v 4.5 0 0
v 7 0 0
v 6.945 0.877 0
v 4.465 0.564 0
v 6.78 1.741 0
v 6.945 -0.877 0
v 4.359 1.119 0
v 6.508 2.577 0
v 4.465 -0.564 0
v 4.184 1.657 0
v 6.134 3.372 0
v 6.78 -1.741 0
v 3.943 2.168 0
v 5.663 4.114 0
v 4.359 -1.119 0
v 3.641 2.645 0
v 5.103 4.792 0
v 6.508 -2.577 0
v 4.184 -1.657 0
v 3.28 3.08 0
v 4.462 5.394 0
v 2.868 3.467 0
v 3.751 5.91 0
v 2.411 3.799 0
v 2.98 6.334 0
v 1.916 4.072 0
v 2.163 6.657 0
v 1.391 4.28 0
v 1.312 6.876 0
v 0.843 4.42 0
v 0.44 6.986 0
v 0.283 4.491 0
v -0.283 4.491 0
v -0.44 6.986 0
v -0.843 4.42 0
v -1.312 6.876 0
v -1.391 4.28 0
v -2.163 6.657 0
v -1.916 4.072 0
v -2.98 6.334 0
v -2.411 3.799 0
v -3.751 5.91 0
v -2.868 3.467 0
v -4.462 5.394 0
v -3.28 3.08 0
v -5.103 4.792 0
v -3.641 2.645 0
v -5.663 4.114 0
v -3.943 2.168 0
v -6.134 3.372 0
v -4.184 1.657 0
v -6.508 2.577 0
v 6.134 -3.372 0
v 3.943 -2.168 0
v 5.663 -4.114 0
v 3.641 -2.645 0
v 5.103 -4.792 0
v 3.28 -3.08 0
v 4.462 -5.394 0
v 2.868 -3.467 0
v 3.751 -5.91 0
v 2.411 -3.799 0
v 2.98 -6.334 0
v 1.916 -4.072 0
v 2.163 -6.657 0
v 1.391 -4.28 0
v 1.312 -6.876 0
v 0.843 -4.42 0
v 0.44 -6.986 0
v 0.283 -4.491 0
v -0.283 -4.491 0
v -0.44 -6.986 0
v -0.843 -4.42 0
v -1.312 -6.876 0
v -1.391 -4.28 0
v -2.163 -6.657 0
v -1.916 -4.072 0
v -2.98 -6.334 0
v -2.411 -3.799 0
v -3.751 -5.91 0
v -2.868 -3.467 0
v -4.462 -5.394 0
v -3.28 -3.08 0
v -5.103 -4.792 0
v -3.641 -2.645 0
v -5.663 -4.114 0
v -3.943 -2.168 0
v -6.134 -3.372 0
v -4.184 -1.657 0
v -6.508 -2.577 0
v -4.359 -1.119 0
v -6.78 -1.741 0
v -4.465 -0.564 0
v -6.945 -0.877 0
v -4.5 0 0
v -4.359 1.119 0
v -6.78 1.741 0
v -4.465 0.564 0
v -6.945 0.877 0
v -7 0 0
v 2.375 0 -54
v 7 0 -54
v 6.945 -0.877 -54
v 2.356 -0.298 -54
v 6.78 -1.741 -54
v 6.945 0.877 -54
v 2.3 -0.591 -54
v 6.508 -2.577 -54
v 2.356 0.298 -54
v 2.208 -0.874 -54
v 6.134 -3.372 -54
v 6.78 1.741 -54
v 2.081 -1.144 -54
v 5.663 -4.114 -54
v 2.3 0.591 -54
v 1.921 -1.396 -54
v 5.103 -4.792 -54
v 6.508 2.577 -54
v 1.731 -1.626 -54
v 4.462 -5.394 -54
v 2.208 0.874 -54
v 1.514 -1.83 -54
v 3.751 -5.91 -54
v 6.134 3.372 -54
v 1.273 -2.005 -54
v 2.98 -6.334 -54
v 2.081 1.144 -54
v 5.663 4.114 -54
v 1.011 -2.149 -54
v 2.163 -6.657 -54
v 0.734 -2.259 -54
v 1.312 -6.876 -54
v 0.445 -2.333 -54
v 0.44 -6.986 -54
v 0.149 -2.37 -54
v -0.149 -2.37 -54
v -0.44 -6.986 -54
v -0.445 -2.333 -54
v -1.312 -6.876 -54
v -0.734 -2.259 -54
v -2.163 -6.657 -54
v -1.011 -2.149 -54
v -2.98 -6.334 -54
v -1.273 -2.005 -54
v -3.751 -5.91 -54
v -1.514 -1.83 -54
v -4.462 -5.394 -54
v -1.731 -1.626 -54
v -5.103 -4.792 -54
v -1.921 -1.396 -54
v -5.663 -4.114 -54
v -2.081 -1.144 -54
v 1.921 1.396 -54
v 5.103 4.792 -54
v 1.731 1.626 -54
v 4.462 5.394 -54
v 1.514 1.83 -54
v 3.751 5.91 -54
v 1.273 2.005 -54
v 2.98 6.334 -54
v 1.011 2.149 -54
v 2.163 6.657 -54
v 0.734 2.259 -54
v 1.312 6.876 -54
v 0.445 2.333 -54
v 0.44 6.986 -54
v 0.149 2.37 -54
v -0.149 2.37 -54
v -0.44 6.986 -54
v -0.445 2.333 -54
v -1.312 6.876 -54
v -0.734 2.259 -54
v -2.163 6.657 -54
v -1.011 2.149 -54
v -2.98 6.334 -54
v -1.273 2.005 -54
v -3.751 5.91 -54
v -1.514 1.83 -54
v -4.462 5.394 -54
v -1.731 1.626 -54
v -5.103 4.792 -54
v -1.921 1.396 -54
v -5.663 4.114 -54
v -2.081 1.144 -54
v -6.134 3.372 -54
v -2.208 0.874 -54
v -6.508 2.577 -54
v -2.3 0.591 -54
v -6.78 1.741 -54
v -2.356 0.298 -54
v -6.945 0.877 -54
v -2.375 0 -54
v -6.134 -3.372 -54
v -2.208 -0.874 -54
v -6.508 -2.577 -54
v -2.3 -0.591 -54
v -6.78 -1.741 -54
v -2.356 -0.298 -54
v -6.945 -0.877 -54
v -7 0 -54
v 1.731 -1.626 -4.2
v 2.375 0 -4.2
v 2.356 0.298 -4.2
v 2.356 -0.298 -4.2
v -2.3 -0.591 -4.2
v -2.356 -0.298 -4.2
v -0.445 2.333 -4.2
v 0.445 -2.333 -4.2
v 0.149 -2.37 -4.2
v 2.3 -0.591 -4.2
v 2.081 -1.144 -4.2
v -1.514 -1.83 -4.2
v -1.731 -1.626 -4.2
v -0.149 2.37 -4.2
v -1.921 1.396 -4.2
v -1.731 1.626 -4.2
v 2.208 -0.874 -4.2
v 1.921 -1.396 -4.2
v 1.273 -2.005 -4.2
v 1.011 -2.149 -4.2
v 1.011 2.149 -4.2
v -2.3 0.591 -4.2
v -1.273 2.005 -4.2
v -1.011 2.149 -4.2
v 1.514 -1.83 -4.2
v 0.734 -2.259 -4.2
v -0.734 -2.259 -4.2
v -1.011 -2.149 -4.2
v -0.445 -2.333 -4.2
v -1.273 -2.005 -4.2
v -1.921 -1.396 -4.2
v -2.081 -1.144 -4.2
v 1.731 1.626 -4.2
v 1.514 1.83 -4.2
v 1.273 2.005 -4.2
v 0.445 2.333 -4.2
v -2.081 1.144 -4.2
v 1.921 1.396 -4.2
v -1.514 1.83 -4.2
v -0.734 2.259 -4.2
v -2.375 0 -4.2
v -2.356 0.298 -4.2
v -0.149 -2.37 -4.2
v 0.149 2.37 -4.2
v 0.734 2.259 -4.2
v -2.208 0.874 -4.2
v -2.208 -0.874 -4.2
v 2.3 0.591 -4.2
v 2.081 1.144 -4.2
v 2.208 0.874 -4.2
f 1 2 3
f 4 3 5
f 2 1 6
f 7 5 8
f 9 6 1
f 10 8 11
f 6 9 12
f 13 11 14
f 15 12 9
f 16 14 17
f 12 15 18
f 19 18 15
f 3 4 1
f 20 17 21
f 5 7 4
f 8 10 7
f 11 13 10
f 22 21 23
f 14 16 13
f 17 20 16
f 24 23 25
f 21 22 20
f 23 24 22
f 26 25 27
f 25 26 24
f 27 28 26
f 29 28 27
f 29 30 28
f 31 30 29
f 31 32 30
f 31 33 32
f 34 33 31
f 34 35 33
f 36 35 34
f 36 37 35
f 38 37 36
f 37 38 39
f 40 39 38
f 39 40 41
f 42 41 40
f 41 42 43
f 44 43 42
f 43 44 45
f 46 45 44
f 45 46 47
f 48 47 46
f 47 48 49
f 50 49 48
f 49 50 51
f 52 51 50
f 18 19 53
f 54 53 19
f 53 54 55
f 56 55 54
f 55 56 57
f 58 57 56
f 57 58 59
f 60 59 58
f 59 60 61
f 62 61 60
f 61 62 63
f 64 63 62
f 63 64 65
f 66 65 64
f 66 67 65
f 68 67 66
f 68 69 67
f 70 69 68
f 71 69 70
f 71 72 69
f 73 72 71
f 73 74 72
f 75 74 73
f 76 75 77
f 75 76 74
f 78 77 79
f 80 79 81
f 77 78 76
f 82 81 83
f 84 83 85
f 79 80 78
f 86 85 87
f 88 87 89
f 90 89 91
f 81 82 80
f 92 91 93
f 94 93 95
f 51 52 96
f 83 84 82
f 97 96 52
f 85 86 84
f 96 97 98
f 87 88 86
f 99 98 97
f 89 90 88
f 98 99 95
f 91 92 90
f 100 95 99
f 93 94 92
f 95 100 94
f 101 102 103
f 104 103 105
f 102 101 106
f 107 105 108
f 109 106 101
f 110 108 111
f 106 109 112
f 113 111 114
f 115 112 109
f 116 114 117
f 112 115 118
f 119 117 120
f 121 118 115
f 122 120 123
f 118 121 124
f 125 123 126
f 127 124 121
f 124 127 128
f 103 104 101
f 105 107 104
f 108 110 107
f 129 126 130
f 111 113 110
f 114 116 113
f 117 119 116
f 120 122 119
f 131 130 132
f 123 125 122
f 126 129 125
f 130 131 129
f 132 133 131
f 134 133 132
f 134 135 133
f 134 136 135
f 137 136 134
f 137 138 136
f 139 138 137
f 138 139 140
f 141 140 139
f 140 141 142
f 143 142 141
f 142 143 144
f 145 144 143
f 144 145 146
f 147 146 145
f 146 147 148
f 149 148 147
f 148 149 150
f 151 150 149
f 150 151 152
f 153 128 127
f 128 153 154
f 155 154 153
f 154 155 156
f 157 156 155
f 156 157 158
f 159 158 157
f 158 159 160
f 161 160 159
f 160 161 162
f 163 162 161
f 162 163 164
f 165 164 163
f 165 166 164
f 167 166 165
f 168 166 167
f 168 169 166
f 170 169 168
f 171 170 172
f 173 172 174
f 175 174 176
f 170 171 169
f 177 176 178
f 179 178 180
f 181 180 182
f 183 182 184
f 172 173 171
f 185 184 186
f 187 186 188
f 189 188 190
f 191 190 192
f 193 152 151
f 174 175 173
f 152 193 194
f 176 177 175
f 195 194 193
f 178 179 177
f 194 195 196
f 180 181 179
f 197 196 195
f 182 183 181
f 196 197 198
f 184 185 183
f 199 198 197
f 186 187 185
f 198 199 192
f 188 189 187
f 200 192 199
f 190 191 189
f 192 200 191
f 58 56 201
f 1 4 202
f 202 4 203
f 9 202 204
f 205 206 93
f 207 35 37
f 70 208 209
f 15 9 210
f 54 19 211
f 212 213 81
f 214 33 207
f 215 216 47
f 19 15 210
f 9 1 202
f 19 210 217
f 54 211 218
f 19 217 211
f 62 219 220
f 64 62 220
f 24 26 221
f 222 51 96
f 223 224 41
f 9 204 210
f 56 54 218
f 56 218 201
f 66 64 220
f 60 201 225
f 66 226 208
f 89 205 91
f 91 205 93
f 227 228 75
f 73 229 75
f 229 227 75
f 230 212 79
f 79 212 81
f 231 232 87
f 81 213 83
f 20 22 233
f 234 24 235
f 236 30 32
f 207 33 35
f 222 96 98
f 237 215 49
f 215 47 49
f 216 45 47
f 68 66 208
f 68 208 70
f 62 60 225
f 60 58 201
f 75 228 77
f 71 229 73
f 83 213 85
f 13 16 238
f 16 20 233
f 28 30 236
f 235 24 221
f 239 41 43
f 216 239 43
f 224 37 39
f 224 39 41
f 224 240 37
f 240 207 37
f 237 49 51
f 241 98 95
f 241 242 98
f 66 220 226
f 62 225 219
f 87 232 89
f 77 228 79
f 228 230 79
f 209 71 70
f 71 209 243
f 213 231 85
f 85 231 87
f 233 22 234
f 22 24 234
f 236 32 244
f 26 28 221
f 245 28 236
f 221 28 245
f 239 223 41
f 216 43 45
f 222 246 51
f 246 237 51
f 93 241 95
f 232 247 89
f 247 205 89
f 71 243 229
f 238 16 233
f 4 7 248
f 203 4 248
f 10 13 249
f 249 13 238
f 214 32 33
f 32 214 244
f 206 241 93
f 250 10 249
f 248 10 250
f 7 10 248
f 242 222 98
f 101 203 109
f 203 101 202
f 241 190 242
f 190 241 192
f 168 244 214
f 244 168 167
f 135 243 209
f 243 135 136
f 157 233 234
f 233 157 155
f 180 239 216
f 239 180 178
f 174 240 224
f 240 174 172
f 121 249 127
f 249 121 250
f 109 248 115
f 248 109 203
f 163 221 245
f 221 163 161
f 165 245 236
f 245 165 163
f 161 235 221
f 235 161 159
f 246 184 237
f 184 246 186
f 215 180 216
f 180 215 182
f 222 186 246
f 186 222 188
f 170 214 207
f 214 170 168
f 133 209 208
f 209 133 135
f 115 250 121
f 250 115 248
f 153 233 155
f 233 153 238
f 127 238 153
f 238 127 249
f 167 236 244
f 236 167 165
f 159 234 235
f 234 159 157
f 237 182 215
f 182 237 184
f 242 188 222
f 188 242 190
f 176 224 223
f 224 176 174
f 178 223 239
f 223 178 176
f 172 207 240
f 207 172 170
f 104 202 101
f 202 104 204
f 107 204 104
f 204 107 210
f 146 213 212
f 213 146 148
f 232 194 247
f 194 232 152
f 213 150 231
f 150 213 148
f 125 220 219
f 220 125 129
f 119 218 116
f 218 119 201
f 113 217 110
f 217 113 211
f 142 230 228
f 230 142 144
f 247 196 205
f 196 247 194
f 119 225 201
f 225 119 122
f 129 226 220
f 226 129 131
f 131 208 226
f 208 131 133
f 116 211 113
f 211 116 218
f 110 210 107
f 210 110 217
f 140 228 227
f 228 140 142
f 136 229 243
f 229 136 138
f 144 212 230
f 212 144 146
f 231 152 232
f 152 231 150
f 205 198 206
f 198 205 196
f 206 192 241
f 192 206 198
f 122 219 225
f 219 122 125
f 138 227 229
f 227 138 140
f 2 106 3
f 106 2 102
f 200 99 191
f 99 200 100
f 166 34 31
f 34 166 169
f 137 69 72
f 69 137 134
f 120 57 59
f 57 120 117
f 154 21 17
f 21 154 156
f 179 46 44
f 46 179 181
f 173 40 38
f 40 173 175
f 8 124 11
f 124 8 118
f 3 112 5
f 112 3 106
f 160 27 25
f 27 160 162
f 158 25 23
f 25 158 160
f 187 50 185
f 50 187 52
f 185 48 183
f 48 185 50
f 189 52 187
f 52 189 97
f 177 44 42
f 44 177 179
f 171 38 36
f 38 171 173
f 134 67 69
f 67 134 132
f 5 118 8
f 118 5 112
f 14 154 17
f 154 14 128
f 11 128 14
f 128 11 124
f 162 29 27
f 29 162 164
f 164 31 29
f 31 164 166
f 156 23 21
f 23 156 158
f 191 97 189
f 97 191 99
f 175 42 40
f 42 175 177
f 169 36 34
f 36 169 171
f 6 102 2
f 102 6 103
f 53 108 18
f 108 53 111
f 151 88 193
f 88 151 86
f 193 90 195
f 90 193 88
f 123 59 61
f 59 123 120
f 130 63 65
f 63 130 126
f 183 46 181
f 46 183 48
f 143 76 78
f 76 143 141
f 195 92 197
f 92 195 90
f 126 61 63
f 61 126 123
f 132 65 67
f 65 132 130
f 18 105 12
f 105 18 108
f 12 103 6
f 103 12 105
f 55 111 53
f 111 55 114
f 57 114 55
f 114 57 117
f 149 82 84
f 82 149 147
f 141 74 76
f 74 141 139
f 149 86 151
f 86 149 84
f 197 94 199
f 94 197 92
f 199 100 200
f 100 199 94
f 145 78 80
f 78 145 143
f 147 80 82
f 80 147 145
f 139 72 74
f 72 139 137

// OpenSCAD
$fn = 50;


difference() {
	union() {
		translate(v = [0, 0, -54.0000000000]) {
			cylinder(h = 54, r = 7.0000000000);
		}
		cylinder(h = 0, r = 13.0000000000);
	}
	union() {
		translate(v = [0, 0, 0]) {
			rotate(a = [0, 0, 0]) {
				difference() {
					union() {
						#translate(v = [0, 0, -54.0000000000]) {
							cylinder(h = 54, r = 2.2500000000);
						}
						#translate(v = [0, 0, -4.2000000000]) {
							cylinder(h = 4.2000000000, r1 = 2.3750000000, r2 = 4.5000000000);
						}
						#translate(v = [0, 0, -54.0000000000]) {
							cylinder(h = 54, r = 2.3750000000);
						}
						#translate(v = [0, 0, -54.0000000000]) {
							cylinder(h = 54, r = 2.2500000000);
						}
					}
					union();
				}
			}
		}
	}
}
